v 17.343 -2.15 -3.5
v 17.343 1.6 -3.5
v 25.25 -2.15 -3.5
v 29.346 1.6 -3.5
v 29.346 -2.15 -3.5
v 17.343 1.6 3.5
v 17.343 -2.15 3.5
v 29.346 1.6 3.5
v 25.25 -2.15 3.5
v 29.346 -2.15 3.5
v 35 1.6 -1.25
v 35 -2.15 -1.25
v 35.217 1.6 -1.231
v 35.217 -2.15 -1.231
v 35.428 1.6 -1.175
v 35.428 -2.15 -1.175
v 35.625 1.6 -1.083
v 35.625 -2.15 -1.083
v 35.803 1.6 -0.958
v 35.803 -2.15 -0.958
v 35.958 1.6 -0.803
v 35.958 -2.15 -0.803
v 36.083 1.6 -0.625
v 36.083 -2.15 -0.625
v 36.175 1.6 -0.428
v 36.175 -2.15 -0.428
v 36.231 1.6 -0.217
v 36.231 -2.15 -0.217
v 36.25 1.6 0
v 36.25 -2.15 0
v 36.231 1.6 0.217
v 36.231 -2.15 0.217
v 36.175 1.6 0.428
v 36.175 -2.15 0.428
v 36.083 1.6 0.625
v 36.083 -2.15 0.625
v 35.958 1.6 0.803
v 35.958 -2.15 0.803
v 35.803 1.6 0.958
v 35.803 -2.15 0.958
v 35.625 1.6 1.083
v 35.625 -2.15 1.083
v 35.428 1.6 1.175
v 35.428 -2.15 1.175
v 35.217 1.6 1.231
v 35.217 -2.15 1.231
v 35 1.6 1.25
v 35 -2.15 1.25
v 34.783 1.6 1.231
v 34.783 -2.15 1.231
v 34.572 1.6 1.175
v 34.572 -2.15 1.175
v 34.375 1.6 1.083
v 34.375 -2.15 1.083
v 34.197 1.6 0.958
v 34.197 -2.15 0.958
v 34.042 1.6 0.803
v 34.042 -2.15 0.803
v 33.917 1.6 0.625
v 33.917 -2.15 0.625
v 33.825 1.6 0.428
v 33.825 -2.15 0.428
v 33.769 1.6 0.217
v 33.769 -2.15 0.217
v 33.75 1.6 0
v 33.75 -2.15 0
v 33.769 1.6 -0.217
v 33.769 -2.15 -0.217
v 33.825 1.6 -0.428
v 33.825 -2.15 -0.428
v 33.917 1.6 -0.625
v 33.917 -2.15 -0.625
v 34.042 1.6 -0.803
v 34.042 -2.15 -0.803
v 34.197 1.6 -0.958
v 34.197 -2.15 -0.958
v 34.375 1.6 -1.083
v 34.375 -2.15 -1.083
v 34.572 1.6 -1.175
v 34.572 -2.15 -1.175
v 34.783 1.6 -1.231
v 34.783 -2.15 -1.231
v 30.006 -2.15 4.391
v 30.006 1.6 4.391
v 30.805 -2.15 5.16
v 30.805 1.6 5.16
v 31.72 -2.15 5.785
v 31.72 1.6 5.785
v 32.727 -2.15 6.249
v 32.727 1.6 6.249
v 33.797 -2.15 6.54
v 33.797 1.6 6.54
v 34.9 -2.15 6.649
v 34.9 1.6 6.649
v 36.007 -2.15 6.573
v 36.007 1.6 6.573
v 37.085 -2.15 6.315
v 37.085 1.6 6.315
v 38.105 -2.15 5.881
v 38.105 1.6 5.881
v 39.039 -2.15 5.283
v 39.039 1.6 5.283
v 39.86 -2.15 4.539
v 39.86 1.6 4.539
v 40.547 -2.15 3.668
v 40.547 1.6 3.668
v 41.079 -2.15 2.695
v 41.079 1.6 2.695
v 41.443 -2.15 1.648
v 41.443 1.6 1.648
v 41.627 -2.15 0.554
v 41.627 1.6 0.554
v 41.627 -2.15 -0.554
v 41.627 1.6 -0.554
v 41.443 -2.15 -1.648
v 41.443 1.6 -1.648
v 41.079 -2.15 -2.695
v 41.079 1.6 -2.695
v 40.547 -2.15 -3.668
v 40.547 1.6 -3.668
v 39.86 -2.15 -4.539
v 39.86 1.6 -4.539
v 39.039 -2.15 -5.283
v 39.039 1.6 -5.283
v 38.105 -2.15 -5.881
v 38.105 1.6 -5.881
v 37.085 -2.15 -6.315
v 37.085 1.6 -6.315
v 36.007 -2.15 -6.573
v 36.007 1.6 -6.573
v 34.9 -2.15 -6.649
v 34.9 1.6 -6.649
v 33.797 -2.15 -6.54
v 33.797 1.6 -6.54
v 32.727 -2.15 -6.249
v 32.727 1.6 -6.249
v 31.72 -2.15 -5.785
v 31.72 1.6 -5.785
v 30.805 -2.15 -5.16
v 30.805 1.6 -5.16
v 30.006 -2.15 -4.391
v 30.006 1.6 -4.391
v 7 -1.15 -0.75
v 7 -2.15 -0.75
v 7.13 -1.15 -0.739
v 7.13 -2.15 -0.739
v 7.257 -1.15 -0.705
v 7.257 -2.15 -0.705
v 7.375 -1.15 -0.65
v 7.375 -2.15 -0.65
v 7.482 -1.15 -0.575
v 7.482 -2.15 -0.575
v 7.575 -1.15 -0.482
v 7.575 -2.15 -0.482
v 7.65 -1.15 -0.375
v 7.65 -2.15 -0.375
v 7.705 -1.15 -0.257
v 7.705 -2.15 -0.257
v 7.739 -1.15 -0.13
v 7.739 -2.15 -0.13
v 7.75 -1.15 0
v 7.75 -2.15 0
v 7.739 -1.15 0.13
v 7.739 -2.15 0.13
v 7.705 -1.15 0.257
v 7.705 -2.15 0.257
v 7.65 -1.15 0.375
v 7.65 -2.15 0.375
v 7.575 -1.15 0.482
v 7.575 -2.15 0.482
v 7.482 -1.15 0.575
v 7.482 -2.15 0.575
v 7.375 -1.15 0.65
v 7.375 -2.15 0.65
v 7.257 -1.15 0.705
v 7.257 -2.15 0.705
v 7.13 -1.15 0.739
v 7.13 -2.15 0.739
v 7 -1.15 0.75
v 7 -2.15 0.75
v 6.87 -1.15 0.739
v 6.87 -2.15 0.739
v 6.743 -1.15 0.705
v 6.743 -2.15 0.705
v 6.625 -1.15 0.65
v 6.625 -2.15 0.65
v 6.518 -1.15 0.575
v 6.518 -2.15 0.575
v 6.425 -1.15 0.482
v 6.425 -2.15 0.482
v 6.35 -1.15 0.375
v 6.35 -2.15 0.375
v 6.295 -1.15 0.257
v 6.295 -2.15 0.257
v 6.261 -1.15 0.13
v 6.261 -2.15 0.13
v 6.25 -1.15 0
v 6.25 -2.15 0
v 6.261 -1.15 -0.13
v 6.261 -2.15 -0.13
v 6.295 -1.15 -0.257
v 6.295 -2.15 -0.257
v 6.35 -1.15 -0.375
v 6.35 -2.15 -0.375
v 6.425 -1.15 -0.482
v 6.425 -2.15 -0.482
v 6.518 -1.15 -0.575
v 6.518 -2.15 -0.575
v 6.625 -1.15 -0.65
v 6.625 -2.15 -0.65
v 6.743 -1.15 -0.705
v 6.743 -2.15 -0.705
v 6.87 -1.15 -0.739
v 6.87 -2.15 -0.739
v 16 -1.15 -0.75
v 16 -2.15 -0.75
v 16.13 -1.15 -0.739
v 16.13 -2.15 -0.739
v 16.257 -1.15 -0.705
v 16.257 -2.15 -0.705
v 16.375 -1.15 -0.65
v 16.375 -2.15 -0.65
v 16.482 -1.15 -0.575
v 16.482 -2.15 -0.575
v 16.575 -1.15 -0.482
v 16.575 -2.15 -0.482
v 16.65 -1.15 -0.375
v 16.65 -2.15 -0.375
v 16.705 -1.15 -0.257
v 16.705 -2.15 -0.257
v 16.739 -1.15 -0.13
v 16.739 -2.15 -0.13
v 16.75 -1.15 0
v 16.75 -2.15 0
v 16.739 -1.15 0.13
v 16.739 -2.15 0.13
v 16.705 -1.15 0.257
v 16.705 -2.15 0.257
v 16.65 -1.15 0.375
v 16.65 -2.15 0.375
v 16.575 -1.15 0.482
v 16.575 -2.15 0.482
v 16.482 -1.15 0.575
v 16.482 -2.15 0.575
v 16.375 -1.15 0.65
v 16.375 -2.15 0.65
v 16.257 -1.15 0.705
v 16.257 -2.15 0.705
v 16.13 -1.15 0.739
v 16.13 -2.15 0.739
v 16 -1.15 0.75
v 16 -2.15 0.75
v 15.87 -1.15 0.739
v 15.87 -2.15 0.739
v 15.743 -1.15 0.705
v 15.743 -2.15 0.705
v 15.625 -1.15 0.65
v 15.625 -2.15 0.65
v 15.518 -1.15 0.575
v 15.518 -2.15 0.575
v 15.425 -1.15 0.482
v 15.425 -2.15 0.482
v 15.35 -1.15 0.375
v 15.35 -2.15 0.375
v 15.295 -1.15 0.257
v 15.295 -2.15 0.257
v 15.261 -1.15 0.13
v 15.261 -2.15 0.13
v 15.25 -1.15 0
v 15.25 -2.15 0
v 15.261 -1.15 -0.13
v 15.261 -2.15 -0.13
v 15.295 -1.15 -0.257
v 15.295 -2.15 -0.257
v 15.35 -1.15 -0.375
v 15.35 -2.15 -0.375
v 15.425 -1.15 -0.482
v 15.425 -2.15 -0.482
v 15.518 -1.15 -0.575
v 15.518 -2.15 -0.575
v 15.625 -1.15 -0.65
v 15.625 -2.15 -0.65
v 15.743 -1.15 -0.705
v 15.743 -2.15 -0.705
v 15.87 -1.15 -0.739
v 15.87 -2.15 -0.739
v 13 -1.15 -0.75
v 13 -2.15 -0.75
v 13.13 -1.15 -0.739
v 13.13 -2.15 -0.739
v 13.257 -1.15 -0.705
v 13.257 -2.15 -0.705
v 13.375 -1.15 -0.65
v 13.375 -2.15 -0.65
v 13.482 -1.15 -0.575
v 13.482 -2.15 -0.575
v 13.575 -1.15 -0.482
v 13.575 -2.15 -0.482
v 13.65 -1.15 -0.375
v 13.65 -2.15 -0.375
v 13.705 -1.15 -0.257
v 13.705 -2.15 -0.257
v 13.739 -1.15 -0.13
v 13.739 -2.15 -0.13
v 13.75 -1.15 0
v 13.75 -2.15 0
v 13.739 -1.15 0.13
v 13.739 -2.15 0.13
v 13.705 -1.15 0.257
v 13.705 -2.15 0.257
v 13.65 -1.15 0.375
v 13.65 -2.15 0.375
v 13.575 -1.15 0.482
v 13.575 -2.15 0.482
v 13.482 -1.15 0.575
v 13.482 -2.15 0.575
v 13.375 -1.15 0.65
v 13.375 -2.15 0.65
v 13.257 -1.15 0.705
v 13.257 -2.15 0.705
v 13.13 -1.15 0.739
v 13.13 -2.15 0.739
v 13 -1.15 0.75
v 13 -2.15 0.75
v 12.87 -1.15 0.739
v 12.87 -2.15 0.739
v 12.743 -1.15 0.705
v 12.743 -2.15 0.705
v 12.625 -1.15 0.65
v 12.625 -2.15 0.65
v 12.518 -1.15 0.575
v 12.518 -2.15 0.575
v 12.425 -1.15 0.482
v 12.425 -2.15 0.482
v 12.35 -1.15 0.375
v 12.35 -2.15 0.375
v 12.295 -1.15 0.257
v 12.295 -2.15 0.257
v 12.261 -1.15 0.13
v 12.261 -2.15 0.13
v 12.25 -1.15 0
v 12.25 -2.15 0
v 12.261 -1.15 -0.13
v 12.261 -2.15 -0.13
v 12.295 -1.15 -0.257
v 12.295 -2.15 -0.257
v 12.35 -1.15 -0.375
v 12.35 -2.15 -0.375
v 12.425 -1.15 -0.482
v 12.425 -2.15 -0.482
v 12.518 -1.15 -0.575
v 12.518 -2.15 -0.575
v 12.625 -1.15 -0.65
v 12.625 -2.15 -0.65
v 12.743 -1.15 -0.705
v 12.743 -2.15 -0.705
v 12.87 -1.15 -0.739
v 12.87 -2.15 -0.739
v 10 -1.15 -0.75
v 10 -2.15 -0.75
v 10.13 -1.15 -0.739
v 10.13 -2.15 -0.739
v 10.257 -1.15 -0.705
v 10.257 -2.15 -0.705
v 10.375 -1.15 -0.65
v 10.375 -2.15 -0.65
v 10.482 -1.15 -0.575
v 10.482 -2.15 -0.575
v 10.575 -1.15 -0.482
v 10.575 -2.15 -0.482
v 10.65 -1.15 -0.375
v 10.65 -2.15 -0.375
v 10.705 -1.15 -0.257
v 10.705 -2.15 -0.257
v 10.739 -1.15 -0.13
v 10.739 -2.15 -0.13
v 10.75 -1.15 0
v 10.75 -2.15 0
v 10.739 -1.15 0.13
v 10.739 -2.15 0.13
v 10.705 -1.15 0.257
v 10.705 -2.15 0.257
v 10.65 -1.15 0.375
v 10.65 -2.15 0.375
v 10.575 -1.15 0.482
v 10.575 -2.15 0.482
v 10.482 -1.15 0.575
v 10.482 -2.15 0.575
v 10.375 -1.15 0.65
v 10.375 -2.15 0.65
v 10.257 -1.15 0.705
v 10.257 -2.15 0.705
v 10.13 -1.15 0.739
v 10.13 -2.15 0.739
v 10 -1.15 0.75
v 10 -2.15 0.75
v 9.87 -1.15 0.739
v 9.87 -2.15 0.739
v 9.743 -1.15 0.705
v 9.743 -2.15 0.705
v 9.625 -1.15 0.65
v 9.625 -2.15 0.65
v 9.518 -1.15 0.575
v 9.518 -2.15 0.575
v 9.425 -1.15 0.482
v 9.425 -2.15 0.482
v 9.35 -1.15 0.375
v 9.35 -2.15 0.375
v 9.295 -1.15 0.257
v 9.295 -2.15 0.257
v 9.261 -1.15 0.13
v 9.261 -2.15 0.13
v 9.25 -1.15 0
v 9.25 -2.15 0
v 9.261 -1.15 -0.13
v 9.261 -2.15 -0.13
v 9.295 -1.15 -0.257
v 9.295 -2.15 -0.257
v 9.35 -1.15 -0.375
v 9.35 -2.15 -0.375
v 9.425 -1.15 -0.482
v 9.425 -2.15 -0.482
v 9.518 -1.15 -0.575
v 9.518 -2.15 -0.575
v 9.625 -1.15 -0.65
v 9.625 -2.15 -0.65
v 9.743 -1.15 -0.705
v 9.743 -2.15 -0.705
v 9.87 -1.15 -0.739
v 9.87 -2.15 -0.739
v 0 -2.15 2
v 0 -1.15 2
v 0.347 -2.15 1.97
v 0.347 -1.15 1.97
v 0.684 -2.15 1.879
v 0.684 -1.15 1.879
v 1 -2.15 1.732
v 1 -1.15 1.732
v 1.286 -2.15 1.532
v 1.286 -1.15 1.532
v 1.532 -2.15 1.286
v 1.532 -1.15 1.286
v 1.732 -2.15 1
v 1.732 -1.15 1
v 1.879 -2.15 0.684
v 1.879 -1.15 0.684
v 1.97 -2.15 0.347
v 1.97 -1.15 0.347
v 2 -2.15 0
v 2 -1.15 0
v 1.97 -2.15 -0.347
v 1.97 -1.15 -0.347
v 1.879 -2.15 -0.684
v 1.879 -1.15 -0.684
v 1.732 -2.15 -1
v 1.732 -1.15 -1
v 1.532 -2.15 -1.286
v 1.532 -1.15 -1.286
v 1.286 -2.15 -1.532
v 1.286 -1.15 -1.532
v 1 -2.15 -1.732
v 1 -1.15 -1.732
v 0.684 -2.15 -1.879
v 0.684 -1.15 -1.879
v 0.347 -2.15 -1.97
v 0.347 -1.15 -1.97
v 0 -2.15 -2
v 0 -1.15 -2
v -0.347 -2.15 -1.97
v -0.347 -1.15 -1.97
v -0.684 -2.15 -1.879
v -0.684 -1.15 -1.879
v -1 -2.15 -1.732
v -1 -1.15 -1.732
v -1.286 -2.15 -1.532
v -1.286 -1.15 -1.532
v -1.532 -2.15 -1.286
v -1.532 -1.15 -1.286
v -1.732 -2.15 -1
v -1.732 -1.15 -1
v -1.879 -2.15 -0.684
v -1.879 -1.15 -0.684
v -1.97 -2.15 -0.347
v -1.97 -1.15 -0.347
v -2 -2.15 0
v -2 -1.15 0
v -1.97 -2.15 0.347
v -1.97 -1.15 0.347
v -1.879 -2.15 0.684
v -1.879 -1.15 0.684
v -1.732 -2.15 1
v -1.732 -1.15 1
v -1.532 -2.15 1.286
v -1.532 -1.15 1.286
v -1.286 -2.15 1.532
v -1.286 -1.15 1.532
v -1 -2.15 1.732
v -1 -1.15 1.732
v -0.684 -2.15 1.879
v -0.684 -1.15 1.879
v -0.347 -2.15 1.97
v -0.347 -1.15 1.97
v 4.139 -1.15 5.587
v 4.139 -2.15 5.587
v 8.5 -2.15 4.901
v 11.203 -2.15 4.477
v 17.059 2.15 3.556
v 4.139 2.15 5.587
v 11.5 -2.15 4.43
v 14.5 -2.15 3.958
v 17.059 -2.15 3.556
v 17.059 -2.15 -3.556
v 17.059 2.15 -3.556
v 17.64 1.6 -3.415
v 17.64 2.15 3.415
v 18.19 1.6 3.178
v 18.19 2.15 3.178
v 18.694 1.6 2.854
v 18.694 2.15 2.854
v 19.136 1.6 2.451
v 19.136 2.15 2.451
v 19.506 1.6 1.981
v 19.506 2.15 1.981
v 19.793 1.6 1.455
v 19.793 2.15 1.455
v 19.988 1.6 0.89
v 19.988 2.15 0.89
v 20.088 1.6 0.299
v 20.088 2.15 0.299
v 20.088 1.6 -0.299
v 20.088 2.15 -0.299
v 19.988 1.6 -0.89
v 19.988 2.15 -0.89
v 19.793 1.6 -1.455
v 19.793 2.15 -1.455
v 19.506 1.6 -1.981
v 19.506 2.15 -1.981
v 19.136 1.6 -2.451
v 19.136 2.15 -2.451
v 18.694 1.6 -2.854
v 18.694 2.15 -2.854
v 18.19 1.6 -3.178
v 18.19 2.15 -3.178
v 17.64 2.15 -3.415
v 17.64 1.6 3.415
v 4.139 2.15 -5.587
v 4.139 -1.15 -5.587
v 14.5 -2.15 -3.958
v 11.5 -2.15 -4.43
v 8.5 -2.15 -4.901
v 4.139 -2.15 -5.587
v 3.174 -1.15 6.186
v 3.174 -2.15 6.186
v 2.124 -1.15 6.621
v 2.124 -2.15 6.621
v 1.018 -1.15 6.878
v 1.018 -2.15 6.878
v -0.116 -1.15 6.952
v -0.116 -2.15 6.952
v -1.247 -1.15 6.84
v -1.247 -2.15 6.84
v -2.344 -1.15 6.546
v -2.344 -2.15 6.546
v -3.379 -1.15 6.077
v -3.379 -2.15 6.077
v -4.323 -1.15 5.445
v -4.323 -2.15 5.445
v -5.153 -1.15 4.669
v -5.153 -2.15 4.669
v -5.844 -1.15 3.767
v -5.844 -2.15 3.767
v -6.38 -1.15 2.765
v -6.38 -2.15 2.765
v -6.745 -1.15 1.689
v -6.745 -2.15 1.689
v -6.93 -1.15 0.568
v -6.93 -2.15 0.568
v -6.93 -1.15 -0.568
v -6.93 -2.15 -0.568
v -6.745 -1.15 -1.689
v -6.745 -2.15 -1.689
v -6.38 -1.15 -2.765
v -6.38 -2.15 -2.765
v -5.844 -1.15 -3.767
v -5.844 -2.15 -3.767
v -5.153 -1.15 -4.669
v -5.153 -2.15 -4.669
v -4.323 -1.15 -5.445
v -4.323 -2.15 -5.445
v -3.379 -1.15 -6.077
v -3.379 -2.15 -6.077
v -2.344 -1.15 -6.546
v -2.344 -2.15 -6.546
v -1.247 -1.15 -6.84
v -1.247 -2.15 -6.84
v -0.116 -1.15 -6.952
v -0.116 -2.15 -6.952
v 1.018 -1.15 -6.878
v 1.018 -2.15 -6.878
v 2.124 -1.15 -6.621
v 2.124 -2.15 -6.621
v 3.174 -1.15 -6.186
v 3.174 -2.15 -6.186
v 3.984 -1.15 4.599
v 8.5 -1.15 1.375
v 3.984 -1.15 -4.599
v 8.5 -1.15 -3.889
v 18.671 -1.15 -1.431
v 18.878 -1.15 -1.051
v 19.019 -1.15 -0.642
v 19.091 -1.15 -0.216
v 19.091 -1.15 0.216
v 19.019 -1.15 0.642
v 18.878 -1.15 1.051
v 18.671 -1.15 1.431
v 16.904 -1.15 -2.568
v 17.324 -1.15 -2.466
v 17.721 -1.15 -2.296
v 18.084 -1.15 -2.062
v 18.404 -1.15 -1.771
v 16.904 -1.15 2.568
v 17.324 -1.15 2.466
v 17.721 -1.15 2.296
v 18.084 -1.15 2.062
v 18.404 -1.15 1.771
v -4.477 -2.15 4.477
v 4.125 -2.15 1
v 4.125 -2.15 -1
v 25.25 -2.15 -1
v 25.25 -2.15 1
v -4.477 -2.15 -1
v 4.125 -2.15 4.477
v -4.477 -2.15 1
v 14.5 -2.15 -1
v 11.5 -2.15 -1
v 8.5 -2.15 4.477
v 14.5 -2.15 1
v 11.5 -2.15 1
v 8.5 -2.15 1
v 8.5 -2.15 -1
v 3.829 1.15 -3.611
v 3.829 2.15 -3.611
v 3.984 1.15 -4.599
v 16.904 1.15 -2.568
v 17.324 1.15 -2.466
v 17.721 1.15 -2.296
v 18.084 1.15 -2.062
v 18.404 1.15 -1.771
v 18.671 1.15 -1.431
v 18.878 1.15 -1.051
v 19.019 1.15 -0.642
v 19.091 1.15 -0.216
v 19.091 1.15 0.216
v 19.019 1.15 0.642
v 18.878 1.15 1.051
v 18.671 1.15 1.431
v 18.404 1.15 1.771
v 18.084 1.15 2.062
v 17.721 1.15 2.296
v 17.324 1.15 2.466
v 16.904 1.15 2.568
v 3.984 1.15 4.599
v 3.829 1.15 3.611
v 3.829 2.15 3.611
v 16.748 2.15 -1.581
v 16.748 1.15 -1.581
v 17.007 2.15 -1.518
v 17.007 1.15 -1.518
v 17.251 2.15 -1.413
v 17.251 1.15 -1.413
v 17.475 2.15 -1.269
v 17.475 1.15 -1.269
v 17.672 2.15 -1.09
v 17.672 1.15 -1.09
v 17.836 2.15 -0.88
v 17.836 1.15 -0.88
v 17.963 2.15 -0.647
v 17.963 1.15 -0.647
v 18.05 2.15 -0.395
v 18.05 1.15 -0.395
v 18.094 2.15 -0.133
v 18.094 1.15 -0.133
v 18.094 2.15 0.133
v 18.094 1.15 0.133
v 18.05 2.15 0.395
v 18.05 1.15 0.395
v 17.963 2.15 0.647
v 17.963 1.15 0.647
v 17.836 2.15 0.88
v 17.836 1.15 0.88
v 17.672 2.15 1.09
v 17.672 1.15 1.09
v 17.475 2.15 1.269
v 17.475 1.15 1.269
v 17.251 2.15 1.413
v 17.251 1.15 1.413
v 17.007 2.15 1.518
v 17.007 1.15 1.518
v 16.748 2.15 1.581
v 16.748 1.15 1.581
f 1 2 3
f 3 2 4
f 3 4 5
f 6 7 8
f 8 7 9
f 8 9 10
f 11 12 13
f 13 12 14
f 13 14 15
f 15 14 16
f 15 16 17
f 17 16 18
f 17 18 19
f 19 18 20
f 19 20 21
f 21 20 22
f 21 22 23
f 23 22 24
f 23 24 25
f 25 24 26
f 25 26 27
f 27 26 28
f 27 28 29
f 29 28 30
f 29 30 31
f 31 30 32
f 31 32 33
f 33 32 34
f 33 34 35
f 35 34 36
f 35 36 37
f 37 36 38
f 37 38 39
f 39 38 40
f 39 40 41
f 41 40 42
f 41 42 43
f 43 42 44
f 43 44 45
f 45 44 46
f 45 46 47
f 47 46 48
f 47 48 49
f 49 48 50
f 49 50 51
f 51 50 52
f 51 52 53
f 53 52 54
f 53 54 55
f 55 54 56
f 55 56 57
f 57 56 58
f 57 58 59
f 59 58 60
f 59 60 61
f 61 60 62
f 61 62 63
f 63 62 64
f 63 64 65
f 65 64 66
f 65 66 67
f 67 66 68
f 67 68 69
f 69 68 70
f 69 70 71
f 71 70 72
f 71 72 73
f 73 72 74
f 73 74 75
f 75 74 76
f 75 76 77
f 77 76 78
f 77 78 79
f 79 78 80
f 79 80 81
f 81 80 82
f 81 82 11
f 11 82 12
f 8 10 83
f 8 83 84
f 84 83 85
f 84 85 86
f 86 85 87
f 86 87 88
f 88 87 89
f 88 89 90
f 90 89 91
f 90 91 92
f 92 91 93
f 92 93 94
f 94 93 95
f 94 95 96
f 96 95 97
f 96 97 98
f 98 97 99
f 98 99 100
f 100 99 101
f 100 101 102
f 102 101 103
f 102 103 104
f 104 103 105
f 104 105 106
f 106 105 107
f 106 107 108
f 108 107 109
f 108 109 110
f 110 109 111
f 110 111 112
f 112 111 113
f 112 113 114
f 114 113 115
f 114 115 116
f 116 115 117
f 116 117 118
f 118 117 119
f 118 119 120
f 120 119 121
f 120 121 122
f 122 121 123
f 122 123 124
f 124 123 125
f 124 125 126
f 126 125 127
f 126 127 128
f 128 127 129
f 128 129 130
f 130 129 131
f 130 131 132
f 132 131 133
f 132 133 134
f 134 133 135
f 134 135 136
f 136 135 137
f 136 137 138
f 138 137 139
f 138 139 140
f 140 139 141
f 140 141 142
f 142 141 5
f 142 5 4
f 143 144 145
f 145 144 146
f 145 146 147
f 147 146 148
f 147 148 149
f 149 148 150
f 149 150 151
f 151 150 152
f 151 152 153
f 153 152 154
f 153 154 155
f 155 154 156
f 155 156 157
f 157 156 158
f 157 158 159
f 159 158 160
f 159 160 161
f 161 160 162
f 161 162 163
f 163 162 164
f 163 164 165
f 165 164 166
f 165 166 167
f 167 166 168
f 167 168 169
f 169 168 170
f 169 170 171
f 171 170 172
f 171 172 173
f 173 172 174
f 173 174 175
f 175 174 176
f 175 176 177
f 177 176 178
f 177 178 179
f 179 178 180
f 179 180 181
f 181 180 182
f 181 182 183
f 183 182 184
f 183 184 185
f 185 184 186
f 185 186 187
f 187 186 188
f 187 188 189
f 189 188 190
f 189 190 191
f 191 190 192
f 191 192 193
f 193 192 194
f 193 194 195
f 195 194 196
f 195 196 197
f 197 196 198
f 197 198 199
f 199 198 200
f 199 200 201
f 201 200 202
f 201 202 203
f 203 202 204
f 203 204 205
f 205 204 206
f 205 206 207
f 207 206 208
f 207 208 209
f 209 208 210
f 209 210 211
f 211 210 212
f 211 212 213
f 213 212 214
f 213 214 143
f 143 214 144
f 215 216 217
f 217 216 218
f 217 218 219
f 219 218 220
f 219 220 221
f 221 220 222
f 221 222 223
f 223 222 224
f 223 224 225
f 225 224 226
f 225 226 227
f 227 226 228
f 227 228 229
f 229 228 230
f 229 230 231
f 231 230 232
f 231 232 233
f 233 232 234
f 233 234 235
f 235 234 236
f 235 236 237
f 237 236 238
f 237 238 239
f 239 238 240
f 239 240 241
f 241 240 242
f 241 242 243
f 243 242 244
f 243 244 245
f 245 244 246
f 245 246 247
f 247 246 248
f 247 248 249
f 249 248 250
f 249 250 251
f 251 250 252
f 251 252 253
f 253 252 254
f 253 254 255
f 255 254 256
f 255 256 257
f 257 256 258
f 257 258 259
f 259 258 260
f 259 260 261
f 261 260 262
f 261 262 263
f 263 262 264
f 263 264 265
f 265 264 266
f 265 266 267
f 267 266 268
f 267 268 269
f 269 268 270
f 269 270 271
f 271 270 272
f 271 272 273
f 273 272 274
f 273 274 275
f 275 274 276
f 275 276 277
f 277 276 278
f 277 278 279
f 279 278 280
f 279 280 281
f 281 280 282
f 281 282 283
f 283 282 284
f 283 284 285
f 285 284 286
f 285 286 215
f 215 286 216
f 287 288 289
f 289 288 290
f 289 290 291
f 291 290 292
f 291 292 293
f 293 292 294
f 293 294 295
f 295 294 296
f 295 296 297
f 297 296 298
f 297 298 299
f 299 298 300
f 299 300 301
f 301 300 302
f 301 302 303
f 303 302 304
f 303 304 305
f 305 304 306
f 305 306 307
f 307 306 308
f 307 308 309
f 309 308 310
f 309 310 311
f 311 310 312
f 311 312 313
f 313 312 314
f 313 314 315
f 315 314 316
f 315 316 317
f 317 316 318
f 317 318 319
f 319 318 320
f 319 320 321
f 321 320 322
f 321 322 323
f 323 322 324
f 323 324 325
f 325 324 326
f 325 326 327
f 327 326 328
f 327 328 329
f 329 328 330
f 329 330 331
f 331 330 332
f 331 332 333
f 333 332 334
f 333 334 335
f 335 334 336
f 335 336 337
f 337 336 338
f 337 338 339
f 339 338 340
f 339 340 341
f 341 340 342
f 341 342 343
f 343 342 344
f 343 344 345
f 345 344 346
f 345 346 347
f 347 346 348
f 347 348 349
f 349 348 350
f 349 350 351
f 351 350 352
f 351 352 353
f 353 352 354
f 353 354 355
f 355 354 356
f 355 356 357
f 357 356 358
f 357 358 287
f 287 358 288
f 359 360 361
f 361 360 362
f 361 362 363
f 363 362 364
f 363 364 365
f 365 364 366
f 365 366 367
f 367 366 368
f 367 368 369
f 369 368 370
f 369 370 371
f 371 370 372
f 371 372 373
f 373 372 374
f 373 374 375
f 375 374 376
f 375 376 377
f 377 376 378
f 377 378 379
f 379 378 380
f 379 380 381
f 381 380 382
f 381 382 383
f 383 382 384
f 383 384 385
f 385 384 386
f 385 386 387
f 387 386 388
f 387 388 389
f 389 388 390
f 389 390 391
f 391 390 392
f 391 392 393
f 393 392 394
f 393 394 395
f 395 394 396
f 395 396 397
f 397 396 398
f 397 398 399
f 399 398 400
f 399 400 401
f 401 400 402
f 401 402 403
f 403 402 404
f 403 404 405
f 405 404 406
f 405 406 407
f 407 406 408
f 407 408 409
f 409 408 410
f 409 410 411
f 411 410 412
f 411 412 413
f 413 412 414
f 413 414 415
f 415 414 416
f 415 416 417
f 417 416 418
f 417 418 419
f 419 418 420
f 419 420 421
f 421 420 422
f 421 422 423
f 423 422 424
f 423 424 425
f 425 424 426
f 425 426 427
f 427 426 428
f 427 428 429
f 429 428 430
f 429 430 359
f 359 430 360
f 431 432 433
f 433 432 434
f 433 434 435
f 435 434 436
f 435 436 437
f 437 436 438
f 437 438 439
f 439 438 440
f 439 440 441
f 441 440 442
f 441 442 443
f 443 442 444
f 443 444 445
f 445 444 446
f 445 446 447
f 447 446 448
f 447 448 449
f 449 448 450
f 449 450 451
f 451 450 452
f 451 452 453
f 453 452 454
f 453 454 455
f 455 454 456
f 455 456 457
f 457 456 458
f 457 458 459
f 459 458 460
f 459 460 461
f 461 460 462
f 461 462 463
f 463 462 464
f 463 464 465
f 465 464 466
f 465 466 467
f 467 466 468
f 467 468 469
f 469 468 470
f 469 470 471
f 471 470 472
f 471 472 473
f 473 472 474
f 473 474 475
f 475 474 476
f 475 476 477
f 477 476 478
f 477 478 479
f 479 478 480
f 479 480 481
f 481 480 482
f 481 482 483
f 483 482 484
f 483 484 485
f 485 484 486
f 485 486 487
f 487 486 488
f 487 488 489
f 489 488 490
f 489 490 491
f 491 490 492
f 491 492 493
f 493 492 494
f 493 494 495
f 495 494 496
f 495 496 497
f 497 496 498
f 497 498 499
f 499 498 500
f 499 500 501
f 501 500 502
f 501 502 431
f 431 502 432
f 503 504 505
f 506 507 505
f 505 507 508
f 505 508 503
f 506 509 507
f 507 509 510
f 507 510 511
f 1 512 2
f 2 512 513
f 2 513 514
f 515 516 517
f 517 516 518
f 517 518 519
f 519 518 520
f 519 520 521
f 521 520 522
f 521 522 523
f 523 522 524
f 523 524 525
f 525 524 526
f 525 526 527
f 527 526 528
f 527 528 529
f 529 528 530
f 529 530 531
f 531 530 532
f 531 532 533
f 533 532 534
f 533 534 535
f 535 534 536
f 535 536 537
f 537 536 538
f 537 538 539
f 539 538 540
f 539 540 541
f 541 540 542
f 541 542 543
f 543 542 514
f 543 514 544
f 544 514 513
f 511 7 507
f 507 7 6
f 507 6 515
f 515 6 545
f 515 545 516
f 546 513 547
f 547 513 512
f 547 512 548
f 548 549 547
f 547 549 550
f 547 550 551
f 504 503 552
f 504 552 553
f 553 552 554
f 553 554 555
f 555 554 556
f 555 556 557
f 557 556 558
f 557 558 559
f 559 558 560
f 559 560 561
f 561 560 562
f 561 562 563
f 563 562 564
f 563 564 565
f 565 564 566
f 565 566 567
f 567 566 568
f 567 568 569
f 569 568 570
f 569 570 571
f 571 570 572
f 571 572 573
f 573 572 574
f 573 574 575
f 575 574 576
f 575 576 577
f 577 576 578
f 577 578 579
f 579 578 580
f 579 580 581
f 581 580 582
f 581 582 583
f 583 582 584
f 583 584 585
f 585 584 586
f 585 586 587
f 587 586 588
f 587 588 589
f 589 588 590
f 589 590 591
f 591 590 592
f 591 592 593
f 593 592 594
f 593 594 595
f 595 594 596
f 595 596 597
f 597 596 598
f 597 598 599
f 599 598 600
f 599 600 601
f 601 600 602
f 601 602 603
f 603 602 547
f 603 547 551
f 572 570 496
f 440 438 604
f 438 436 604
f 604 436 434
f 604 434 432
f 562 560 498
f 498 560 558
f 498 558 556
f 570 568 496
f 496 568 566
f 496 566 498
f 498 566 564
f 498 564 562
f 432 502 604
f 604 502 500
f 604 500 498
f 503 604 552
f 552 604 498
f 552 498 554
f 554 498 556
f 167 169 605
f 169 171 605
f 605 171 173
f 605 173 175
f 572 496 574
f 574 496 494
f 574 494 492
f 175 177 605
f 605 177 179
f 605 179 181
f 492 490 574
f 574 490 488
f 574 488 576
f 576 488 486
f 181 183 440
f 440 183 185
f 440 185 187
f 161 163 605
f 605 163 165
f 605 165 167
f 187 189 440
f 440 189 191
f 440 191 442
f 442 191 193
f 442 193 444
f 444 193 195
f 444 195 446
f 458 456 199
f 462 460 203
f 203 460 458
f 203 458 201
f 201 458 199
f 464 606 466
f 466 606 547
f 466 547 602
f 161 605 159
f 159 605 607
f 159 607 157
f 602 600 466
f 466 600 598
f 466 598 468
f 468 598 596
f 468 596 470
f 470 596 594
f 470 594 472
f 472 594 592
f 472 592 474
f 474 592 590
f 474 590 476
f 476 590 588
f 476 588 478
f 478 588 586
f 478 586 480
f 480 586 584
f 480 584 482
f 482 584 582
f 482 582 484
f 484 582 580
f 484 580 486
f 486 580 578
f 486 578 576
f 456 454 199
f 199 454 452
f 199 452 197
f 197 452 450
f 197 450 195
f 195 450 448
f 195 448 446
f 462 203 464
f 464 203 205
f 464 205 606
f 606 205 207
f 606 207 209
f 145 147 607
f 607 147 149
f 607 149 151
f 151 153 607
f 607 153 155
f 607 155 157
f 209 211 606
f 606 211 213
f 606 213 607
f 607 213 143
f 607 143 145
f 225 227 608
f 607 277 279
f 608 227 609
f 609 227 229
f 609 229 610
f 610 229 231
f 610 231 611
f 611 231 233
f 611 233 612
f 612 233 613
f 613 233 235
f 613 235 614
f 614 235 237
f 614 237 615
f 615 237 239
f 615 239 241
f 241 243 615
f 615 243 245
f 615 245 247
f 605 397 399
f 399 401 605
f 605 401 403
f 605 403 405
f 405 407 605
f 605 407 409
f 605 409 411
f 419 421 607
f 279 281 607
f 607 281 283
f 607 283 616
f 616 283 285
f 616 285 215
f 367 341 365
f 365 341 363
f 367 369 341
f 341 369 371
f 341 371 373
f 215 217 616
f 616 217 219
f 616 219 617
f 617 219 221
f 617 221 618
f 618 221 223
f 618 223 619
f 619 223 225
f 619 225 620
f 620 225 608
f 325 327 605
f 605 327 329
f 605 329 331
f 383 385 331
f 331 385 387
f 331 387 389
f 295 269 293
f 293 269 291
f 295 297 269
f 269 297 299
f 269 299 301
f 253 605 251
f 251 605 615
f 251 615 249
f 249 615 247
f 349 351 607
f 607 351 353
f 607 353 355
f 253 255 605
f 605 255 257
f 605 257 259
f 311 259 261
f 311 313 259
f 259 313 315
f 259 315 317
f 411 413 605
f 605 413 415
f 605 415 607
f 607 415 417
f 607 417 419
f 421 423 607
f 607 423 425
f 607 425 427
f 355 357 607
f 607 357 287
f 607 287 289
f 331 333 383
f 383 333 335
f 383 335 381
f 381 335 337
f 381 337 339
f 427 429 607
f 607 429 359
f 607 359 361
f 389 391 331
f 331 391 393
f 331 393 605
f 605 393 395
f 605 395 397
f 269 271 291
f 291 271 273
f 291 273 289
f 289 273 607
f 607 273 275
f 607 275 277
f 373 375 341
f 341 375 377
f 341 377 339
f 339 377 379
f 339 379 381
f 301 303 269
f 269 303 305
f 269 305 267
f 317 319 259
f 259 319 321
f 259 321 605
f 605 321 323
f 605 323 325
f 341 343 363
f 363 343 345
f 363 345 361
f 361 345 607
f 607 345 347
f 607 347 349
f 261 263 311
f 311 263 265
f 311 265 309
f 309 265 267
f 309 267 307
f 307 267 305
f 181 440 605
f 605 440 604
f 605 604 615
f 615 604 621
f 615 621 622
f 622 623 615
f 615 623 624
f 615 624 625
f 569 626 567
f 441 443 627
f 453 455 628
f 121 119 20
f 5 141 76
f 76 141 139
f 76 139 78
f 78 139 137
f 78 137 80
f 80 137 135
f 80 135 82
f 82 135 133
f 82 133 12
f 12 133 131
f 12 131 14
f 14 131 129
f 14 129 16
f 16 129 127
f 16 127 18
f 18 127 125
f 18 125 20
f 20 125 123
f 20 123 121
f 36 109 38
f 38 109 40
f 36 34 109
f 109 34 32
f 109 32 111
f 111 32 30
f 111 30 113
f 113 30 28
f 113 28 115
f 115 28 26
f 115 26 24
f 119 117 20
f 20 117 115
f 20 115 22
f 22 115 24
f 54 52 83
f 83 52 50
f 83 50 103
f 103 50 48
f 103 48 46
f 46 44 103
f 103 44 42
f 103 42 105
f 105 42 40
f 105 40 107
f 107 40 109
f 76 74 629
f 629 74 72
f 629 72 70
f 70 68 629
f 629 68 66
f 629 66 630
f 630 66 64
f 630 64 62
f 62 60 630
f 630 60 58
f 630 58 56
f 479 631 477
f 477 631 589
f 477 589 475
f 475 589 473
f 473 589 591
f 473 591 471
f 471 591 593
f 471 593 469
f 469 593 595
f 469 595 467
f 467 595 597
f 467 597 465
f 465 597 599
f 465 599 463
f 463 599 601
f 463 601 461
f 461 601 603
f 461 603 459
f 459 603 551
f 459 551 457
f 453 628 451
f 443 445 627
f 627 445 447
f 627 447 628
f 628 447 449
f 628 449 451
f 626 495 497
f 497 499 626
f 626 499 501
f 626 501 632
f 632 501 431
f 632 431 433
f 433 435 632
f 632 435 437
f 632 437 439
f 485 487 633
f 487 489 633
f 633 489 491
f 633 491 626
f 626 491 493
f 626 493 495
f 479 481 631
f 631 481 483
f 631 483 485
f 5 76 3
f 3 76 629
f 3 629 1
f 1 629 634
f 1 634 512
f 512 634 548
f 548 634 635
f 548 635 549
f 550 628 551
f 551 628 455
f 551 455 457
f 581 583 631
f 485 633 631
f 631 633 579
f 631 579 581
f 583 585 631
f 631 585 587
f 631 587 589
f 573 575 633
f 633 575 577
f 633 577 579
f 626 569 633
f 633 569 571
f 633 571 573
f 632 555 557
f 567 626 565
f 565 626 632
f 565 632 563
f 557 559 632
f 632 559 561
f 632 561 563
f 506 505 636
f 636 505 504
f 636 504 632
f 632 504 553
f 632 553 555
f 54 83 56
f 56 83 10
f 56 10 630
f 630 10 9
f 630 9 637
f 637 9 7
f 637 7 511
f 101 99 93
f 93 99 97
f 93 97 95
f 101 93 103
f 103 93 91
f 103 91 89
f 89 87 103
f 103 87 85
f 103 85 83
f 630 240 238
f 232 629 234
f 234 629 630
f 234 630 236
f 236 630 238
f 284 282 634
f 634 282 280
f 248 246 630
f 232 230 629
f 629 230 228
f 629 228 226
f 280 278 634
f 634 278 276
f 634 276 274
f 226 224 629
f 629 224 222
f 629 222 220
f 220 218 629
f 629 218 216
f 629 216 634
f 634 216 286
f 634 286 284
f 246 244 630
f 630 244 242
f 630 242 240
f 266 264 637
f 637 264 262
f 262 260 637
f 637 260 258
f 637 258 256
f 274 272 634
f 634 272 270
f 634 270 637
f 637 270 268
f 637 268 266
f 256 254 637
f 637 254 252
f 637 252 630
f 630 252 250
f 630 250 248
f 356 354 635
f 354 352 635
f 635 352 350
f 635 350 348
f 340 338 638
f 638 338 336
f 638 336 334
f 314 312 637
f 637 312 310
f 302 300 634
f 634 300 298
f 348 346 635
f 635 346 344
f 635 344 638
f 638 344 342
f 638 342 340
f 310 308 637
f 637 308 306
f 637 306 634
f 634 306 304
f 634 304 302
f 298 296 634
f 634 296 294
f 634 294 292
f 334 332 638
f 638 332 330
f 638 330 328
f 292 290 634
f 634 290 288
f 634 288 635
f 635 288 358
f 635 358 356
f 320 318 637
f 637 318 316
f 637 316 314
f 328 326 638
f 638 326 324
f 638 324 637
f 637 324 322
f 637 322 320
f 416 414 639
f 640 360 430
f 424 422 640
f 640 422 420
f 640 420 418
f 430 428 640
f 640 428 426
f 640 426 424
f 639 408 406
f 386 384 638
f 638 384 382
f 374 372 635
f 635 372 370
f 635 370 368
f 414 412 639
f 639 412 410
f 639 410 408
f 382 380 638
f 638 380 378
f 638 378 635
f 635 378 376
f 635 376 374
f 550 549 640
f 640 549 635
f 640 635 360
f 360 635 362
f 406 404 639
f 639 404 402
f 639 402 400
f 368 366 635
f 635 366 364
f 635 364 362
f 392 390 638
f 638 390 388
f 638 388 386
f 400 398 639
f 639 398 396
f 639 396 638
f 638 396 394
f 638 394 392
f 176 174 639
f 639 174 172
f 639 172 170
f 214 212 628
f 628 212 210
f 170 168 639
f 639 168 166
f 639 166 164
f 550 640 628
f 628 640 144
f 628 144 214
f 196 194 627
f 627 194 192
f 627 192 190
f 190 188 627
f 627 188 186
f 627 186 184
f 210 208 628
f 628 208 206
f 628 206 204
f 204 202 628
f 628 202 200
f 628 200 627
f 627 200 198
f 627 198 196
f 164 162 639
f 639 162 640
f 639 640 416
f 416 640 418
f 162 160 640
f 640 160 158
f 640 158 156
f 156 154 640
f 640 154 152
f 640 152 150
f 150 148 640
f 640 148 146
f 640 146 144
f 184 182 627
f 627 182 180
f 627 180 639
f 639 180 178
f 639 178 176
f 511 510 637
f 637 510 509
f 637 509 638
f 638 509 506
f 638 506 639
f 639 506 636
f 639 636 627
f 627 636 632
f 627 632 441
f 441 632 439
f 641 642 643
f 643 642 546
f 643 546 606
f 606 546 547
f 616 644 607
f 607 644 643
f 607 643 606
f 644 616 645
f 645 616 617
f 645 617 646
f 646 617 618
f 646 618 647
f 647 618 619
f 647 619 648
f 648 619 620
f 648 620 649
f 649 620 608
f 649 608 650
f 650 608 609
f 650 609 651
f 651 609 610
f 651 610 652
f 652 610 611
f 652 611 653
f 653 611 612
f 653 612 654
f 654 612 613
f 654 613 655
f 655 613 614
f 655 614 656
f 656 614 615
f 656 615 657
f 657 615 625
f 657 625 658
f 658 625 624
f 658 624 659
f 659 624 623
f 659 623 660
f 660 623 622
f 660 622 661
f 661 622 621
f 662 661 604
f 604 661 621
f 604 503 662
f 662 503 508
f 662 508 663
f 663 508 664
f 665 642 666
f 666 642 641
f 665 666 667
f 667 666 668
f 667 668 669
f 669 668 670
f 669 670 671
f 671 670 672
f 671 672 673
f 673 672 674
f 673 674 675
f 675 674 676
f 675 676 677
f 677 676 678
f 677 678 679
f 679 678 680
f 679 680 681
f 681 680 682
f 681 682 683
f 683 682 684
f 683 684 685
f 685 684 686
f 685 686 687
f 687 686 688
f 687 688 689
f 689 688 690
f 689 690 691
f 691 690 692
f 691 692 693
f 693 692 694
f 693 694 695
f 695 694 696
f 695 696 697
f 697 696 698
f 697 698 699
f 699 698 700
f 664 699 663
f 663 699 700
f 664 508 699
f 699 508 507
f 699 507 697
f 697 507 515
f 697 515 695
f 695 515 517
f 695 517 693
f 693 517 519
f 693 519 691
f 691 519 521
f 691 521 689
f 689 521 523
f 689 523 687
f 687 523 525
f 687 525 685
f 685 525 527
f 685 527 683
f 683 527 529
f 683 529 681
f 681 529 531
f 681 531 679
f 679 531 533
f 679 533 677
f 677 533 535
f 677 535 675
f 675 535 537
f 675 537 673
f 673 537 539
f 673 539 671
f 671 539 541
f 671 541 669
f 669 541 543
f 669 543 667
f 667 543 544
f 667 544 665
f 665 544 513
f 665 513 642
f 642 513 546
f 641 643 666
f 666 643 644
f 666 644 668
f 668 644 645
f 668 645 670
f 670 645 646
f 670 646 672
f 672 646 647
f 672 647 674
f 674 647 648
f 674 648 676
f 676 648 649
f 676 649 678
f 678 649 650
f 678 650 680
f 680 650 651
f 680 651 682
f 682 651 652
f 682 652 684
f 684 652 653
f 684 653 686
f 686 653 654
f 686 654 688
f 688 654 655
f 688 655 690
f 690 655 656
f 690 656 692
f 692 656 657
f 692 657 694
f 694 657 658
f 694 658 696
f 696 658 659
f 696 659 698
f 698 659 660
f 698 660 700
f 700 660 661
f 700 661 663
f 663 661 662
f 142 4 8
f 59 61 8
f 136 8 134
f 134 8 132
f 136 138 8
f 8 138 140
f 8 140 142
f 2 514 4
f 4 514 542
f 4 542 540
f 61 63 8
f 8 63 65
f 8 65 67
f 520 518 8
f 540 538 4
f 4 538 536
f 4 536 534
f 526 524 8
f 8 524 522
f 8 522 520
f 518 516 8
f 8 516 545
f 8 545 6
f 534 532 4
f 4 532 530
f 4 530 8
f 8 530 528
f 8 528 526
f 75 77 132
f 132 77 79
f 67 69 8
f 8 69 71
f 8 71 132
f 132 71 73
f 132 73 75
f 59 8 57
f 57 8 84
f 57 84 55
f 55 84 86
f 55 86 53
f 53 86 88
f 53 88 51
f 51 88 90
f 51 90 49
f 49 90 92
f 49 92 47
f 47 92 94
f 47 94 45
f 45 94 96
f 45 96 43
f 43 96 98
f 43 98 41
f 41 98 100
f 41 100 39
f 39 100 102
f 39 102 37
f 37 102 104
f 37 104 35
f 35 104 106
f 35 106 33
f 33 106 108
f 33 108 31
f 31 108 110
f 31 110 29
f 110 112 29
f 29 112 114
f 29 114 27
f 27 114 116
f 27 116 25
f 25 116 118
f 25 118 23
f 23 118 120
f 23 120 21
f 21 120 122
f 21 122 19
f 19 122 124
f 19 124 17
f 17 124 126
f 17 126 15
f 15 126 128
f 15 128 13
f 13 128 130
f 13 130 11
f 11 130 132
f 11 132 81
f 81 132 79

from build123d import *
from build123d.topology import SkipClean

# Parameters (mm, degrees)
SKETCH2_R               = 6
SKETCH2_R_2             = 1.5
BOSS_EXTRUDE1_DEPTH     = 1.15
SKETCH3_R               = 4.4
BOSS_EXTRUDE2_DEPTH     = 3.2
SKETCH4_R               = 0.75
BOSS_EXTRUDE3_DEPTH     = 1.15
CIRPATTERN1_COUNT       = 2
BOSS_EXTRUDE5_DEPTH     = 2.3
SKETCH7_R               = 2
BOSS_EXTRUDE6_DEPTH     = 1
CUT_EXTRUDE2_DEPTH      = 23.239726126
CUT_EXTRUDE4_DEPTH      = 2.3
SKETCH13_R              = 4.4
CUT_EXTRUDE5_DEPTH      = 3.3
BOSS_EXTRUDE8_DEPTH     = 1
SKETCH14_R              = 1.25
BOSS_EXTRUDE9_DEPTH     = 3.9
CUT_EXTRUDE6_DEPTH      = 10
CUT_EXTRUDE8_DEPTH      = 43.406107086
CUT_EXTRUDE8_DEPTH_BACK = 0.15


with BuildPart() as part:
    # Sketch2 → Boss-Extrude1 (new, symmetric)
    with BuildSketch(Plane(origin=(0, 0, 0), x_dir=(1, 0, 0), z_dir=(0, 1, 0))):
        with Locations(Location((0, 0, 0), (0, 0, 270))):
            Circle(SKETCH2_R)
        with Locations(Location((0, 0, 0), (0, 0, 270))):
            Circle(SKETCH2_R_2, mode=Mode.SUBTRACT)
    extrude(amount=BOSS_EXTRUDE1_DEPTH, both=True)

    # Sketch3 → Boss-Extrude2 (add)
    with BuildSketch(Plane(origin=(0, 1.15, 0), x_dir=(1, 0, 0), z_dir=(0, 1, 0))):
        with Locations(Location((0, 0, 0), (0, 0, 270))):
            Circle(SKETCH3_R)
        with BuildLine():
            Line((0.107421435, 2.898009771), (0.338399731, 2.678709694))
            Line((0.338399731, 2.678709694), (0.61665913, 2.83367809))
            ThreePointArc((0.61665913, 2.83367809), (0.721200673, 2.808891167), (0.824752316, 2.780248841))
            Line((0.824752316, 2.780248841), (0.993936292, 2.510396512))
            Line((0.993936292, 2.510396512), (1.301992734, 2.591295993))
            ThreePointArc((1.301992734, 2.591295993), (1.397085655, 2.541289372), (1.490260976, 2.48779465))
            Line((1.490260976, 2.48779465), (1.587020181, 2.184345885))
            Line((1.587020181, 2.184345885), (1.905517346, 2.186093238))
            ThreePointArc((1.905517346, 2.186093238), (1.985186607, 2.11400902), (2.062131058, 2.039023173))
            Line((2.062131058, 2.039023173), (2.080385755, 1.721044772))
            Line((2.080385755, 1.721044772), (2.389311295, 1.643530205))
            ThreePointArc((2.389311295, 1.643530205), (2.448550984, 1.553897705), (2.504429862, 1.46213237))
            Line((2.504429862, 1.46213237), (2.443033042, 1.149604087))
            Line((2.443033042, 1.149604087), (2.722976028, 0.997698125))
            ThreePointArc((2.722976028, 0.997698125), (2.758063897, 0.896149284), (2.789366126, 0.793370413))
            Line((2.789366126, 0.793370413), (2.652175577, 0.505929549))
            Line((2.652175577, 0.505929549), (2.885546163, 0.289177003))
            ThreePointArc((2.885546163, 0.289177003), (2.894277512, 0.182092507), (2.899036259, 0.074758075))
            Line((2.899036259, 0.074758075), (2.694672167, -0.169534403))
            Line((2.694672167, -0.169534403), (2.866806821, -0.437514174))
            ThreePointArc((2.866806821, -0.437514174), (2.848633027, -0.543405812), (2.826549281, -0.648551587))
            Line((2.826549281, -0.648551587), (2.567852594, -0.834345885))
            Line((2.567852594, -0.834345885), (2.667935462, -1.136714727))
            ThreePointArc((2.667935462, -1.136714727), (2.623998452, -1.234759946), (2.576459817, -1.331110368))
            Line((2.576459817, -1.331110368), (2.279685399, -1.446732346))
            Line((2.279685399, -1.446732346), (2.301427906, -1.764491312))
            ThreePointArc((2.301427906, -1.764491312), (2.234488404, -1.84852957), (2.164481907, -1.930030589))
            Line((2.164481907, -1.930030589), (1.848277186, -1.968215294))
            Line((1.848277186, -1.968215294), (1.790313171, -2.281398419))
            ThreePointArc((1.790313171, -2.281398419), (1.704577232, -2.346149284), (1.616501638, -2.40767989))
            Line((1.616501638, -2.40767989), (1.30073492, -2.366028036))
            Line((1.30073492, -2.366028036), (1.166706475, -2.654956874))
            ThreePointArc((1.166706475, -2.654956874), (1.067561203, -2.696351809), (0.966950626, -2.734045809))
            Line((0.966950626, -2.734045809), (0.671462695, -2.615174535))
            Line((0.671462695, -2.615174535), (0.469791321, -2.861694623))
            ThreePointArc((0.469791321, -2.861694623), (0.363466377, -2.877132634), (0.25664255, -2.888621575))
            Line((0.25664255, -2.888621575), (0, -2.7))
            Line((0, -2.7), (-0.25664255, -2.888621575))
            ThreePointArc((-0.25664255, -2.888621575), (-0.363466377, -2.877132634), (-0.469791321, -2.861694623))
            Line((-0.469791321, -2.861694623), (-0.671462695, -2.615174535))
            Line((-0.671462695, -2.615174535), (-0.966950626, -2.734045809))
            ThreePointArc((-0.966950626, -2.734045809), (-1.067561203, -2.696351809), (-1.166706475, -2.654956874))
            Line((-1.166706475, -2.654956874), (-1.30073492, -2.366028036))
            Line((-1.30073492, -2.366028036), (-1.616501638, -2.40767989))
            ThreePointArc((-1.616501638, -2.40767989), (-1.704577232, -2.346149284), (-1.790313171, -2.281398419))
            Line((-1.790313171, -2.281398419), (-1.848277186, -1.968215294))
            Line((-1.848277186, -1.968215294), (-2.164481907, -1.930030589))
            ThreePointArc((-2.164481907, -1.930030589), (-2.234488404, -1.84852957), (-2.301427906, -1.764491312))
            Line((-2.301427906, -1.764491312), (-2.279685399, -1.446732346))
            Line((-2.279685399, -1.446732346), (-2.576459817, -1.331110368))
            ThreePointArc((-2.576459817, -1.331110368), (-2.623998452, -1.234759946), (-2.667935462, -1.136714727))
            Line((-2.667935462, -1.136714727), (-2.567852594, -0.834345885))
            Line((-2.567852594, -0.834345885), (-2.826549281, -0.648551587))
            ThreePointArc((-2.826549281, -0.648551587), (-2.848633027, -0.543405812), (-2.866806821, -0.437514174))
            Line((-2.866806821, -0.437514174), (-2.694672167, -0.169534403))
            Line((-2.694672167, -0.169534403), (-2.899036259, 0.074758075))
            ThreePointArc((-2.899036259, 0.074758075), (-2.894277512, 0.182092507), (-2.885546163, 0.289177003))
            Line((-2.885546163, 0.289177003), (-2.652175577, 0.505929549))
            Line((-2.652175577, 0.505929549), (-2.789366126, 0.793370413))
            ThreePointArc((-2.789366126, 0.793370413), (-2.758063897, 0.896149284), (-2.722976028, 0.997698125))
            Line((-2.722976028, 0.997698125), (-2.443033042, 1.149604087))
            Line((-2.443033042, 1.149604087), (-2.504429862, 1.46213237))
            ThreePointArc((-2.504429862, 1.46213237), (-2.448550984, 1.553897705), (-2.389311295, 1.643530205))
            Line((-2.389311295, 1.643530205), (-2.080385755, 1.721044772))
            Line((-2.080385755, 1.721044772), (-2.062131058, 2.039023173))
            ThreePointArc((-2.062131058, 2.039023173), (-1.985186607, 2.11400902), (-1.905517346, 2.186093238))
            Line((-1.905517346, 2.186093238), (-1.587020181, 2.184345885))
            Line((-1.587020181, 2.184345885), (-1.490260976, 2.48779465))
            ThreePointArc((-1.490260976, 2.48779465), (-1.397085655, 2.541289372), (-1.301992734, 2.591295993))
            Line((-1.301992734, 2.591295993), (-0.993936292, 2.510396512))
            Line((-0.993936292, 2.510396512), (-0.824752316, 2.780248841))
            ThreePointArc((-0.824752316, 2.780248841), (-0.721200673, 2.808891167), (-0.61665913, 2.83367809))
            Line((-0.61665913, 2.83367809), (-0.338399731, 2.678709694))
            Line((-0.338399731, 2.678709694), (-0.107421435, 2.898009771))
            ThreePointArc((-0.107421435, 2.898009771), (0, 2.9), (0.107421435, 2.898009771))
        make_face(mode=Mode.SUBTRACT)
    extrude(amount=BOSS_EXTRUDE2_DEPTH)

    # Sketch4 → Boss-Extrude3 (add, symmetric)
    with BuildSketch(Plane(origin=(0, 0, 0), x_dir=(1, 0, 0), z_dir=(0, 1, 0))):
        with BuildLine():
            Line((3.968626967, 4.5), (16.888114198, 2.469689731))
            ThreePointArc((16.888114198, 2.469689731), (19, 0), (16.888114198, -2.469689731))
            Line((16.888114198, -2.469689731), (3.968626967, -4.5))
            ThreePointArc((3.968626967, -4.5), (6, 0), (3.968626967, 4.5))
        make_face()
        with Locations(Location((16, 0, 0), (0, 0, 270))):
            Circle(SKETCH4_R, mode=Mode.SUBTRACT)
        with Locations(Location((13, 0, 0), (0, 0, 270))):
            Circle(SKETCH4_R, mode=Mode.SUBTRACT)
        with Locations(Location((10, 0, 0), (0, 0, 270))):
            Circle(SKETCH4_R, mode=Mode.SUBTRACT)
        with Locations(Location((7, 0, 0), (0, 0, 270))):
            Circle(SKETCH4_R, mode=Mode.SUBTRACT)
    boss_extrude3 = extrude(amount=BOSS_EXTRUDE3_DEPTH, both=True)

    # CirPattern1: Boss-Extrude3 ×2 about axis
    cirpattern1_axis = Axis((0, 0, 0), (0, 1, 0))
    for i in range(1, CIRPATTERN1_COUNT):
        add(boss_extrude3.rotate(cirpattern1_axis, i * 360 / CIRPATTERN1_COUNT))



with BuildPart() as body_2:
    # Sketch6 → Boss-Extrude5 (new body)
    with BuildSketch(Plane.XZ.offset(1.15)):
        with BuildLine():
            Line((17.058884445, -3.556353213), (4.139397214, -5.586663482))
            Line((4.139397214, -5.586663482), (3.984151535, -4.598787589))
            Line((3.984151535, -4.598787589), (16.903638766, -2.568477321))
            ThreePointArc((16.903638766, -2.568477321), (19.1, 0), (16.903638766, 2.568477321))
            Line((16.903638766, 2.568477321), (3.984151535, 4.598787589))
            Line((3.984151535, 4.598787589), (4.139397214, 5.586663482))
            Line((4.139397214, 5.586663482), (17.058884445, 3.556353213))
            ThreePointArc((17.058884445, 3.556353213), (20.1, 0), (17.058884445, -3.556353213))
        make_face()
    extrude(amount=-BOSS_EXTRUDE5_DEPTH)


with BuildPart() as part_1:
    add(part.part)

    add(body_2.part)  # Boss-Extrude6 merges body 2
    # Sketch7 → Boss-Extrude6 (add)
    with BuildSketch(Plane.XZ.offset(1.15)):
        with BuildLine():
            Line((4.139397214, -5.586663482), (17.058884445, -3.556353213))
            ThreePointArc((17.058884445, -3.556353213), (20.1, 0), (17.058884445, 3.556353213))
            Line((17.058884445, 3.556353213), (4.139397214, 5.586663482))
            ThreePointArc((4.139397214, 5.586663482), (-6.953086951, 0), (4.139397214, -5.586663482))
        make_face()
        with Locations(Location((0, 0, 0), (0, 0, 270))):
            Circle(SKETCH7_R, mode=Mode.SUBTRACT)
    extrude(amount=BOSS_EXTRUDE6_DEPTH)

    # Sketch10 → Cut-Extrude2 (cut, through all)
    with SkipClean():  # the faces are left unmerged after this step: merging them gives an invalid solid
        with BuildSketch(Plane.XZ.offset(2.15)):
            with BuildLine():
                ThreePointArc((10.75, 0), (10, 0.75), (9.25, 0))
                Line((9.25, 0), (10.75, 0))
            make_face()
            with BuildLine():
                Line((10.75, 0), (9.25, 0))
                ThreePointArc((9.25, 0), (10, -0.75), (10.75, 0))
            make_face()
            with BuildLine():
                ThreePointArc((13.75, 0), (13, 0.75), (12.25, 0))
                Line((12.25, 0), (13.75, 0))
            make_face()
            with BuildLine():
                Line((13.75, 0), (12.25, 0))
                ThreePointArc((12.25, 0), (13, -0.75), (13.75, 0))
            make_face()
            with BuildLine():
                ThreePointArc((16.75, 0), (16, 0.75), (15.25, 0))
                Line((15.25, 0), (16.75, 0))
            make_face()
            with BuildLine():
                Line((16.75, 0), (15.25, 0))
                ThreePointArc((15.25, 0), (16, -0.75), (16.75, 0))
            make_face()
            with BuildLine():
                ThreePointArc((7.75, 0), (7, 0.75), (6.25, 0))
                Line((6.25, 0), (7.75, 0))
            make_face()
            with BuildLine():
                Line((7.75, 0), (6.25, 0))
                ThreePointArc((6.25, 0), (7, -0.75), (7.75, 0))
            make_face()
        extrude(amount=-CUT_EXTRUDE2_DEPTH, mode=Mode.SUBTRACT)

    # Sketch12 → Cut-Extrude4 (cut)
    with BuildSketch(Plane(origin=(0, 1.15, 0), x_dir=(1, 0, 0), z_dir=(0, 1, 0))):
        with BuildLine():
            Line((-3.968626967, 4.5), (-16.888114198, 2.469689731))
            ThreePointArc((-16.888114198, 2.469689731), (-19, 0), (-16.888114198, -2.469689731))
            Line((-16.888114198, -2.469689731), (-3.968626967, -4.5))
            ThreePointArc((-3.968626967, -4.5), (0, -6), (3.968626967, -4.5))
            Line((3.968626967, -4.5), (16.888114198, -2.469689731))
            ThreePointArc((16.888114198, -2.469689731), (19, 0), (16.888114198, 2.469689731))
            Line((16.888114198, 2.469689731), (3.968626967, 4.5))
            ThreePointArc((3.968626967, 4.5), (0, 6), (-3.968626967, 4.5))
        make_face()
    extrude(amount=-CUT_EXTRUDE4_DEPTH, mode=Mode.SUBTRACT)


with BuildPart() as cut_extrude4_piece_1:
    # of the separate pieces the step leaves, piece 1, a body of its own (cut_extrude4_pieces)
    add(part_1.part.solids().sort_by_distance((4.139397214, -1.15, -5.586663482))[0])

    # Sketch9 → Boss-Extrude8 (add)
    with BuildSketch(Plane(origin=(0, 1.15, 0), x_dir=(1, 0, 0), z_dir=(0, 1, 0))):
        with BuildLine():
            ThreePointArc((17.058884445, -3.556353213), (20.1, 0), (17.058884445, 3.556353213))
            Line((17.058884445, 3.556353213), (4.139397214, 5.586663482))
            Line((4.139397214, 5.586663482), (3.984151535, 4.598787589))
            Line((3.984151535, 4.598787589), (16.903638766, 2.568477321))
            ThreePointArc((16.903638766, 2.568477321), (19.1, 0), (16.903638766, -2.568477321))
            Line((16.903638766, -2.568477321), (3.984151535, -4.598787589))
            Line((3.984151535, -4.598787589), (4.139397214, -5.586663482))
            Line((4.139397214, -5.586663482), (17.058884445, -3.556353213))
        make_face()
        with BuildLine():
            ThreePointArc((16.748393087, -1.580601428), (18.1, 0), (16.748393087, 1.580601428))
            Line((16.748393087, 1.580601428), (3.828905855, 3.610911697))
            Line((3.828905855, 3.610911697), (3.984151535, 4.598787589))
            Line((3.984151535, 4.598787589), (16.903638766, 2.568477321))
            ThreePointArc((16.903638766, 2.568477321), (19.1, 0), (16.903638766, -2.568477321))
            Line((16.903638766, -2.568477321), (3.984151535, -4.598787589))
            Line((3.984151535, -4.598787589), (3.828905855, -3.610911697))
            Line((3.828905855, -3.610911697), (16.748393087, -1.580601428))
        make_face()
    extrude(amount=BOSS_EXTRUDE8_DEPTH)

    # Sketch14 → Boss-Extrude9 (add)
    # profile 1 of 5: a face of its own
    with BuildSketch(Plane.XZ.offset(2.15)):
        with BuildLine():
            Line((28, 0), (20.1, 0))
            ThreePointArc((20.1, 0), (19.327844932, -2.227844932), (17.342614977, -3.5))
            Line((17.342614977, -3.5), (28.937822174, -3.5))
            ThreePointArc((28.937822174, -3.5), (28.238519216, -1.811733316), (28, 0))
        make_face()
    # profile 2 of 5: a face of its own
    with BuildSketch(Plane.XZ.offset(2.15)):
        with BuildLine():
            ThreePointArc((17.342614977, 3.5), (19.327844932, 2.227844932), (20.1, 0))
            Line((20.1, 0), (28, 0))
            ThreePointArc((28, 0), (28.238519216, 1.811733316), (28.937822174, 3.5))
            Line((28.937822174, 3.5), (17.342614977, 3.5))
        make_face()
    # profile 3 of 5: a face of its own
    with BuildSketch(Plane.XZ.offset(2.15)):
        with BuildLine():
            Line((30.836953373, 3.5), (30.836953373, 0))
            Line((30.836953373, 0), (30.836953373, -3.5))
            Line((30.836953373, -3.5), (28.937822174, -3.5))
            ThreePointArc((28.937822174, -3.5), (36.811733316, -6.761480784), (42, 0))
            ThreePointArc((42, 0), (36.811733316, 6.761480784), (28.937822174, 3.5))
            Line((28.937822174, 3.5), (30.836953373, 3.5))
        make_face()
        with Locations(Location((35, 0, 0), (0, 0, 270))):
            Circle(SKETCH14_R, mode=Mode.SUBTRACT)
    # profile 4 of 5: a face of its own
    with BuildSketch(Plane.XZ.offset(2.15)):
        with BuildLine():
            Line((30.836953373, 0), (28, 0))
            ThreePointArc((28, 0), (28.238519216, -1.811733316), (28.937822174, -3.5))
            Line((28.937822174, -3.5), (30.836953373, -3.5))
            Line((30.836953373, -3.5), (30.836953373, 0))
        make_face()
    # profile 5 of 5: a face of its own
    with BuildSketch(Plane.XZ.offset(2.15)):
        with BuildLine():
            ThreePointArc((28.937822174, 3.5), (28.238519216, 1.811733316), (28, 0))
            Line((28, 0), (30.836953373, 0))
            Line((30.836953373, 0), (30.836953373, 3.5))
            Line((30.836953373, 3.5), (28.937822174, 3.5))
        make_face()
    extrude(amount=-BOSS_EXTRUDE9_DEPTH)

    # Sketch15 → Cut-Extrude6 (cut)
    with BuildSketch(Plane.XZ.offset(2.15)):
        with BuildLine():
            ThreePointArc((42, 0), (36.811733316, 6.761480784), (28.937822174, 3.5))
            Line((28.937822174, 3.5), (29.345576953, 3.5))
            ThreePointArc((29.345576953, 3.5), (36.819421163, 6.396265053), (41.65, 0))
            ThreePointArc((41.65, 0), (36.819421163, -6.396265053), (29.345576953, -3.5))
            Line((29.345576953, -3.5), (28.937822174, -3.5))
            ThreePointArc((28.937822174, -3.5), (36.811733316, -6.761480784), (42, 0))
        make_face()
    extrude(amount=-CUT_EXTRUDE6_DEPTH, mode=Mode.SUBTRACT)

    # Sketch17 → Cut-Extrude8 (cut, two sides: drawn at the far end of the back side and taken through both)
    with BuildSketch(Plane(origin=(0, 1.75, 0), x_dir=(1, 0, 0), z_dir=(0, 1, 0)).offset(-CUT_EXTRUDE8_DEPTH_BACK)):
        with BuildLine():
            Line((17.342614977, -3.5), (29.345576953, -3.5))
            ThreePointArc((29.345576953, -3.5), (41.65, 0), (29.345576953, 3.5))
            Line((29.345576953, 3.5), (17.342614977, 3.5))
            ThreePointArc((17.342614977, 3.5), (20.1, 0), (17.342614977, -3.5))
        make_face()
    extrude(amount=CUT_EXTRUDE8_DEPTH + CUT_EXTRUDE8_DEPTH_BACK, mode=Mode.SUBTRACT)


with BuildPart() as cut_extrude4_piece_2:
    # of the separate pieces the step leaves, piece 2, a body of its own (cut_extrude4_pieces)
    add(part_1.part.solids().sort_by_distance((0, 1.15, 4.4))[0])

    # Sketch13 → Cut-Extrude5 (cut)
    with BuildSketch(Plane(origin=(0, 4.35, 0), x_dir=(1, 0, 0), z_dir=(0, 1, 0))):
        Circle(SKETCH13_R)
    extrude(amount=-CUT_EXTRUDE5_DEPTH, mode=Mode.SUBTRACT)


solid = cut_extrude4_piece_1.part
